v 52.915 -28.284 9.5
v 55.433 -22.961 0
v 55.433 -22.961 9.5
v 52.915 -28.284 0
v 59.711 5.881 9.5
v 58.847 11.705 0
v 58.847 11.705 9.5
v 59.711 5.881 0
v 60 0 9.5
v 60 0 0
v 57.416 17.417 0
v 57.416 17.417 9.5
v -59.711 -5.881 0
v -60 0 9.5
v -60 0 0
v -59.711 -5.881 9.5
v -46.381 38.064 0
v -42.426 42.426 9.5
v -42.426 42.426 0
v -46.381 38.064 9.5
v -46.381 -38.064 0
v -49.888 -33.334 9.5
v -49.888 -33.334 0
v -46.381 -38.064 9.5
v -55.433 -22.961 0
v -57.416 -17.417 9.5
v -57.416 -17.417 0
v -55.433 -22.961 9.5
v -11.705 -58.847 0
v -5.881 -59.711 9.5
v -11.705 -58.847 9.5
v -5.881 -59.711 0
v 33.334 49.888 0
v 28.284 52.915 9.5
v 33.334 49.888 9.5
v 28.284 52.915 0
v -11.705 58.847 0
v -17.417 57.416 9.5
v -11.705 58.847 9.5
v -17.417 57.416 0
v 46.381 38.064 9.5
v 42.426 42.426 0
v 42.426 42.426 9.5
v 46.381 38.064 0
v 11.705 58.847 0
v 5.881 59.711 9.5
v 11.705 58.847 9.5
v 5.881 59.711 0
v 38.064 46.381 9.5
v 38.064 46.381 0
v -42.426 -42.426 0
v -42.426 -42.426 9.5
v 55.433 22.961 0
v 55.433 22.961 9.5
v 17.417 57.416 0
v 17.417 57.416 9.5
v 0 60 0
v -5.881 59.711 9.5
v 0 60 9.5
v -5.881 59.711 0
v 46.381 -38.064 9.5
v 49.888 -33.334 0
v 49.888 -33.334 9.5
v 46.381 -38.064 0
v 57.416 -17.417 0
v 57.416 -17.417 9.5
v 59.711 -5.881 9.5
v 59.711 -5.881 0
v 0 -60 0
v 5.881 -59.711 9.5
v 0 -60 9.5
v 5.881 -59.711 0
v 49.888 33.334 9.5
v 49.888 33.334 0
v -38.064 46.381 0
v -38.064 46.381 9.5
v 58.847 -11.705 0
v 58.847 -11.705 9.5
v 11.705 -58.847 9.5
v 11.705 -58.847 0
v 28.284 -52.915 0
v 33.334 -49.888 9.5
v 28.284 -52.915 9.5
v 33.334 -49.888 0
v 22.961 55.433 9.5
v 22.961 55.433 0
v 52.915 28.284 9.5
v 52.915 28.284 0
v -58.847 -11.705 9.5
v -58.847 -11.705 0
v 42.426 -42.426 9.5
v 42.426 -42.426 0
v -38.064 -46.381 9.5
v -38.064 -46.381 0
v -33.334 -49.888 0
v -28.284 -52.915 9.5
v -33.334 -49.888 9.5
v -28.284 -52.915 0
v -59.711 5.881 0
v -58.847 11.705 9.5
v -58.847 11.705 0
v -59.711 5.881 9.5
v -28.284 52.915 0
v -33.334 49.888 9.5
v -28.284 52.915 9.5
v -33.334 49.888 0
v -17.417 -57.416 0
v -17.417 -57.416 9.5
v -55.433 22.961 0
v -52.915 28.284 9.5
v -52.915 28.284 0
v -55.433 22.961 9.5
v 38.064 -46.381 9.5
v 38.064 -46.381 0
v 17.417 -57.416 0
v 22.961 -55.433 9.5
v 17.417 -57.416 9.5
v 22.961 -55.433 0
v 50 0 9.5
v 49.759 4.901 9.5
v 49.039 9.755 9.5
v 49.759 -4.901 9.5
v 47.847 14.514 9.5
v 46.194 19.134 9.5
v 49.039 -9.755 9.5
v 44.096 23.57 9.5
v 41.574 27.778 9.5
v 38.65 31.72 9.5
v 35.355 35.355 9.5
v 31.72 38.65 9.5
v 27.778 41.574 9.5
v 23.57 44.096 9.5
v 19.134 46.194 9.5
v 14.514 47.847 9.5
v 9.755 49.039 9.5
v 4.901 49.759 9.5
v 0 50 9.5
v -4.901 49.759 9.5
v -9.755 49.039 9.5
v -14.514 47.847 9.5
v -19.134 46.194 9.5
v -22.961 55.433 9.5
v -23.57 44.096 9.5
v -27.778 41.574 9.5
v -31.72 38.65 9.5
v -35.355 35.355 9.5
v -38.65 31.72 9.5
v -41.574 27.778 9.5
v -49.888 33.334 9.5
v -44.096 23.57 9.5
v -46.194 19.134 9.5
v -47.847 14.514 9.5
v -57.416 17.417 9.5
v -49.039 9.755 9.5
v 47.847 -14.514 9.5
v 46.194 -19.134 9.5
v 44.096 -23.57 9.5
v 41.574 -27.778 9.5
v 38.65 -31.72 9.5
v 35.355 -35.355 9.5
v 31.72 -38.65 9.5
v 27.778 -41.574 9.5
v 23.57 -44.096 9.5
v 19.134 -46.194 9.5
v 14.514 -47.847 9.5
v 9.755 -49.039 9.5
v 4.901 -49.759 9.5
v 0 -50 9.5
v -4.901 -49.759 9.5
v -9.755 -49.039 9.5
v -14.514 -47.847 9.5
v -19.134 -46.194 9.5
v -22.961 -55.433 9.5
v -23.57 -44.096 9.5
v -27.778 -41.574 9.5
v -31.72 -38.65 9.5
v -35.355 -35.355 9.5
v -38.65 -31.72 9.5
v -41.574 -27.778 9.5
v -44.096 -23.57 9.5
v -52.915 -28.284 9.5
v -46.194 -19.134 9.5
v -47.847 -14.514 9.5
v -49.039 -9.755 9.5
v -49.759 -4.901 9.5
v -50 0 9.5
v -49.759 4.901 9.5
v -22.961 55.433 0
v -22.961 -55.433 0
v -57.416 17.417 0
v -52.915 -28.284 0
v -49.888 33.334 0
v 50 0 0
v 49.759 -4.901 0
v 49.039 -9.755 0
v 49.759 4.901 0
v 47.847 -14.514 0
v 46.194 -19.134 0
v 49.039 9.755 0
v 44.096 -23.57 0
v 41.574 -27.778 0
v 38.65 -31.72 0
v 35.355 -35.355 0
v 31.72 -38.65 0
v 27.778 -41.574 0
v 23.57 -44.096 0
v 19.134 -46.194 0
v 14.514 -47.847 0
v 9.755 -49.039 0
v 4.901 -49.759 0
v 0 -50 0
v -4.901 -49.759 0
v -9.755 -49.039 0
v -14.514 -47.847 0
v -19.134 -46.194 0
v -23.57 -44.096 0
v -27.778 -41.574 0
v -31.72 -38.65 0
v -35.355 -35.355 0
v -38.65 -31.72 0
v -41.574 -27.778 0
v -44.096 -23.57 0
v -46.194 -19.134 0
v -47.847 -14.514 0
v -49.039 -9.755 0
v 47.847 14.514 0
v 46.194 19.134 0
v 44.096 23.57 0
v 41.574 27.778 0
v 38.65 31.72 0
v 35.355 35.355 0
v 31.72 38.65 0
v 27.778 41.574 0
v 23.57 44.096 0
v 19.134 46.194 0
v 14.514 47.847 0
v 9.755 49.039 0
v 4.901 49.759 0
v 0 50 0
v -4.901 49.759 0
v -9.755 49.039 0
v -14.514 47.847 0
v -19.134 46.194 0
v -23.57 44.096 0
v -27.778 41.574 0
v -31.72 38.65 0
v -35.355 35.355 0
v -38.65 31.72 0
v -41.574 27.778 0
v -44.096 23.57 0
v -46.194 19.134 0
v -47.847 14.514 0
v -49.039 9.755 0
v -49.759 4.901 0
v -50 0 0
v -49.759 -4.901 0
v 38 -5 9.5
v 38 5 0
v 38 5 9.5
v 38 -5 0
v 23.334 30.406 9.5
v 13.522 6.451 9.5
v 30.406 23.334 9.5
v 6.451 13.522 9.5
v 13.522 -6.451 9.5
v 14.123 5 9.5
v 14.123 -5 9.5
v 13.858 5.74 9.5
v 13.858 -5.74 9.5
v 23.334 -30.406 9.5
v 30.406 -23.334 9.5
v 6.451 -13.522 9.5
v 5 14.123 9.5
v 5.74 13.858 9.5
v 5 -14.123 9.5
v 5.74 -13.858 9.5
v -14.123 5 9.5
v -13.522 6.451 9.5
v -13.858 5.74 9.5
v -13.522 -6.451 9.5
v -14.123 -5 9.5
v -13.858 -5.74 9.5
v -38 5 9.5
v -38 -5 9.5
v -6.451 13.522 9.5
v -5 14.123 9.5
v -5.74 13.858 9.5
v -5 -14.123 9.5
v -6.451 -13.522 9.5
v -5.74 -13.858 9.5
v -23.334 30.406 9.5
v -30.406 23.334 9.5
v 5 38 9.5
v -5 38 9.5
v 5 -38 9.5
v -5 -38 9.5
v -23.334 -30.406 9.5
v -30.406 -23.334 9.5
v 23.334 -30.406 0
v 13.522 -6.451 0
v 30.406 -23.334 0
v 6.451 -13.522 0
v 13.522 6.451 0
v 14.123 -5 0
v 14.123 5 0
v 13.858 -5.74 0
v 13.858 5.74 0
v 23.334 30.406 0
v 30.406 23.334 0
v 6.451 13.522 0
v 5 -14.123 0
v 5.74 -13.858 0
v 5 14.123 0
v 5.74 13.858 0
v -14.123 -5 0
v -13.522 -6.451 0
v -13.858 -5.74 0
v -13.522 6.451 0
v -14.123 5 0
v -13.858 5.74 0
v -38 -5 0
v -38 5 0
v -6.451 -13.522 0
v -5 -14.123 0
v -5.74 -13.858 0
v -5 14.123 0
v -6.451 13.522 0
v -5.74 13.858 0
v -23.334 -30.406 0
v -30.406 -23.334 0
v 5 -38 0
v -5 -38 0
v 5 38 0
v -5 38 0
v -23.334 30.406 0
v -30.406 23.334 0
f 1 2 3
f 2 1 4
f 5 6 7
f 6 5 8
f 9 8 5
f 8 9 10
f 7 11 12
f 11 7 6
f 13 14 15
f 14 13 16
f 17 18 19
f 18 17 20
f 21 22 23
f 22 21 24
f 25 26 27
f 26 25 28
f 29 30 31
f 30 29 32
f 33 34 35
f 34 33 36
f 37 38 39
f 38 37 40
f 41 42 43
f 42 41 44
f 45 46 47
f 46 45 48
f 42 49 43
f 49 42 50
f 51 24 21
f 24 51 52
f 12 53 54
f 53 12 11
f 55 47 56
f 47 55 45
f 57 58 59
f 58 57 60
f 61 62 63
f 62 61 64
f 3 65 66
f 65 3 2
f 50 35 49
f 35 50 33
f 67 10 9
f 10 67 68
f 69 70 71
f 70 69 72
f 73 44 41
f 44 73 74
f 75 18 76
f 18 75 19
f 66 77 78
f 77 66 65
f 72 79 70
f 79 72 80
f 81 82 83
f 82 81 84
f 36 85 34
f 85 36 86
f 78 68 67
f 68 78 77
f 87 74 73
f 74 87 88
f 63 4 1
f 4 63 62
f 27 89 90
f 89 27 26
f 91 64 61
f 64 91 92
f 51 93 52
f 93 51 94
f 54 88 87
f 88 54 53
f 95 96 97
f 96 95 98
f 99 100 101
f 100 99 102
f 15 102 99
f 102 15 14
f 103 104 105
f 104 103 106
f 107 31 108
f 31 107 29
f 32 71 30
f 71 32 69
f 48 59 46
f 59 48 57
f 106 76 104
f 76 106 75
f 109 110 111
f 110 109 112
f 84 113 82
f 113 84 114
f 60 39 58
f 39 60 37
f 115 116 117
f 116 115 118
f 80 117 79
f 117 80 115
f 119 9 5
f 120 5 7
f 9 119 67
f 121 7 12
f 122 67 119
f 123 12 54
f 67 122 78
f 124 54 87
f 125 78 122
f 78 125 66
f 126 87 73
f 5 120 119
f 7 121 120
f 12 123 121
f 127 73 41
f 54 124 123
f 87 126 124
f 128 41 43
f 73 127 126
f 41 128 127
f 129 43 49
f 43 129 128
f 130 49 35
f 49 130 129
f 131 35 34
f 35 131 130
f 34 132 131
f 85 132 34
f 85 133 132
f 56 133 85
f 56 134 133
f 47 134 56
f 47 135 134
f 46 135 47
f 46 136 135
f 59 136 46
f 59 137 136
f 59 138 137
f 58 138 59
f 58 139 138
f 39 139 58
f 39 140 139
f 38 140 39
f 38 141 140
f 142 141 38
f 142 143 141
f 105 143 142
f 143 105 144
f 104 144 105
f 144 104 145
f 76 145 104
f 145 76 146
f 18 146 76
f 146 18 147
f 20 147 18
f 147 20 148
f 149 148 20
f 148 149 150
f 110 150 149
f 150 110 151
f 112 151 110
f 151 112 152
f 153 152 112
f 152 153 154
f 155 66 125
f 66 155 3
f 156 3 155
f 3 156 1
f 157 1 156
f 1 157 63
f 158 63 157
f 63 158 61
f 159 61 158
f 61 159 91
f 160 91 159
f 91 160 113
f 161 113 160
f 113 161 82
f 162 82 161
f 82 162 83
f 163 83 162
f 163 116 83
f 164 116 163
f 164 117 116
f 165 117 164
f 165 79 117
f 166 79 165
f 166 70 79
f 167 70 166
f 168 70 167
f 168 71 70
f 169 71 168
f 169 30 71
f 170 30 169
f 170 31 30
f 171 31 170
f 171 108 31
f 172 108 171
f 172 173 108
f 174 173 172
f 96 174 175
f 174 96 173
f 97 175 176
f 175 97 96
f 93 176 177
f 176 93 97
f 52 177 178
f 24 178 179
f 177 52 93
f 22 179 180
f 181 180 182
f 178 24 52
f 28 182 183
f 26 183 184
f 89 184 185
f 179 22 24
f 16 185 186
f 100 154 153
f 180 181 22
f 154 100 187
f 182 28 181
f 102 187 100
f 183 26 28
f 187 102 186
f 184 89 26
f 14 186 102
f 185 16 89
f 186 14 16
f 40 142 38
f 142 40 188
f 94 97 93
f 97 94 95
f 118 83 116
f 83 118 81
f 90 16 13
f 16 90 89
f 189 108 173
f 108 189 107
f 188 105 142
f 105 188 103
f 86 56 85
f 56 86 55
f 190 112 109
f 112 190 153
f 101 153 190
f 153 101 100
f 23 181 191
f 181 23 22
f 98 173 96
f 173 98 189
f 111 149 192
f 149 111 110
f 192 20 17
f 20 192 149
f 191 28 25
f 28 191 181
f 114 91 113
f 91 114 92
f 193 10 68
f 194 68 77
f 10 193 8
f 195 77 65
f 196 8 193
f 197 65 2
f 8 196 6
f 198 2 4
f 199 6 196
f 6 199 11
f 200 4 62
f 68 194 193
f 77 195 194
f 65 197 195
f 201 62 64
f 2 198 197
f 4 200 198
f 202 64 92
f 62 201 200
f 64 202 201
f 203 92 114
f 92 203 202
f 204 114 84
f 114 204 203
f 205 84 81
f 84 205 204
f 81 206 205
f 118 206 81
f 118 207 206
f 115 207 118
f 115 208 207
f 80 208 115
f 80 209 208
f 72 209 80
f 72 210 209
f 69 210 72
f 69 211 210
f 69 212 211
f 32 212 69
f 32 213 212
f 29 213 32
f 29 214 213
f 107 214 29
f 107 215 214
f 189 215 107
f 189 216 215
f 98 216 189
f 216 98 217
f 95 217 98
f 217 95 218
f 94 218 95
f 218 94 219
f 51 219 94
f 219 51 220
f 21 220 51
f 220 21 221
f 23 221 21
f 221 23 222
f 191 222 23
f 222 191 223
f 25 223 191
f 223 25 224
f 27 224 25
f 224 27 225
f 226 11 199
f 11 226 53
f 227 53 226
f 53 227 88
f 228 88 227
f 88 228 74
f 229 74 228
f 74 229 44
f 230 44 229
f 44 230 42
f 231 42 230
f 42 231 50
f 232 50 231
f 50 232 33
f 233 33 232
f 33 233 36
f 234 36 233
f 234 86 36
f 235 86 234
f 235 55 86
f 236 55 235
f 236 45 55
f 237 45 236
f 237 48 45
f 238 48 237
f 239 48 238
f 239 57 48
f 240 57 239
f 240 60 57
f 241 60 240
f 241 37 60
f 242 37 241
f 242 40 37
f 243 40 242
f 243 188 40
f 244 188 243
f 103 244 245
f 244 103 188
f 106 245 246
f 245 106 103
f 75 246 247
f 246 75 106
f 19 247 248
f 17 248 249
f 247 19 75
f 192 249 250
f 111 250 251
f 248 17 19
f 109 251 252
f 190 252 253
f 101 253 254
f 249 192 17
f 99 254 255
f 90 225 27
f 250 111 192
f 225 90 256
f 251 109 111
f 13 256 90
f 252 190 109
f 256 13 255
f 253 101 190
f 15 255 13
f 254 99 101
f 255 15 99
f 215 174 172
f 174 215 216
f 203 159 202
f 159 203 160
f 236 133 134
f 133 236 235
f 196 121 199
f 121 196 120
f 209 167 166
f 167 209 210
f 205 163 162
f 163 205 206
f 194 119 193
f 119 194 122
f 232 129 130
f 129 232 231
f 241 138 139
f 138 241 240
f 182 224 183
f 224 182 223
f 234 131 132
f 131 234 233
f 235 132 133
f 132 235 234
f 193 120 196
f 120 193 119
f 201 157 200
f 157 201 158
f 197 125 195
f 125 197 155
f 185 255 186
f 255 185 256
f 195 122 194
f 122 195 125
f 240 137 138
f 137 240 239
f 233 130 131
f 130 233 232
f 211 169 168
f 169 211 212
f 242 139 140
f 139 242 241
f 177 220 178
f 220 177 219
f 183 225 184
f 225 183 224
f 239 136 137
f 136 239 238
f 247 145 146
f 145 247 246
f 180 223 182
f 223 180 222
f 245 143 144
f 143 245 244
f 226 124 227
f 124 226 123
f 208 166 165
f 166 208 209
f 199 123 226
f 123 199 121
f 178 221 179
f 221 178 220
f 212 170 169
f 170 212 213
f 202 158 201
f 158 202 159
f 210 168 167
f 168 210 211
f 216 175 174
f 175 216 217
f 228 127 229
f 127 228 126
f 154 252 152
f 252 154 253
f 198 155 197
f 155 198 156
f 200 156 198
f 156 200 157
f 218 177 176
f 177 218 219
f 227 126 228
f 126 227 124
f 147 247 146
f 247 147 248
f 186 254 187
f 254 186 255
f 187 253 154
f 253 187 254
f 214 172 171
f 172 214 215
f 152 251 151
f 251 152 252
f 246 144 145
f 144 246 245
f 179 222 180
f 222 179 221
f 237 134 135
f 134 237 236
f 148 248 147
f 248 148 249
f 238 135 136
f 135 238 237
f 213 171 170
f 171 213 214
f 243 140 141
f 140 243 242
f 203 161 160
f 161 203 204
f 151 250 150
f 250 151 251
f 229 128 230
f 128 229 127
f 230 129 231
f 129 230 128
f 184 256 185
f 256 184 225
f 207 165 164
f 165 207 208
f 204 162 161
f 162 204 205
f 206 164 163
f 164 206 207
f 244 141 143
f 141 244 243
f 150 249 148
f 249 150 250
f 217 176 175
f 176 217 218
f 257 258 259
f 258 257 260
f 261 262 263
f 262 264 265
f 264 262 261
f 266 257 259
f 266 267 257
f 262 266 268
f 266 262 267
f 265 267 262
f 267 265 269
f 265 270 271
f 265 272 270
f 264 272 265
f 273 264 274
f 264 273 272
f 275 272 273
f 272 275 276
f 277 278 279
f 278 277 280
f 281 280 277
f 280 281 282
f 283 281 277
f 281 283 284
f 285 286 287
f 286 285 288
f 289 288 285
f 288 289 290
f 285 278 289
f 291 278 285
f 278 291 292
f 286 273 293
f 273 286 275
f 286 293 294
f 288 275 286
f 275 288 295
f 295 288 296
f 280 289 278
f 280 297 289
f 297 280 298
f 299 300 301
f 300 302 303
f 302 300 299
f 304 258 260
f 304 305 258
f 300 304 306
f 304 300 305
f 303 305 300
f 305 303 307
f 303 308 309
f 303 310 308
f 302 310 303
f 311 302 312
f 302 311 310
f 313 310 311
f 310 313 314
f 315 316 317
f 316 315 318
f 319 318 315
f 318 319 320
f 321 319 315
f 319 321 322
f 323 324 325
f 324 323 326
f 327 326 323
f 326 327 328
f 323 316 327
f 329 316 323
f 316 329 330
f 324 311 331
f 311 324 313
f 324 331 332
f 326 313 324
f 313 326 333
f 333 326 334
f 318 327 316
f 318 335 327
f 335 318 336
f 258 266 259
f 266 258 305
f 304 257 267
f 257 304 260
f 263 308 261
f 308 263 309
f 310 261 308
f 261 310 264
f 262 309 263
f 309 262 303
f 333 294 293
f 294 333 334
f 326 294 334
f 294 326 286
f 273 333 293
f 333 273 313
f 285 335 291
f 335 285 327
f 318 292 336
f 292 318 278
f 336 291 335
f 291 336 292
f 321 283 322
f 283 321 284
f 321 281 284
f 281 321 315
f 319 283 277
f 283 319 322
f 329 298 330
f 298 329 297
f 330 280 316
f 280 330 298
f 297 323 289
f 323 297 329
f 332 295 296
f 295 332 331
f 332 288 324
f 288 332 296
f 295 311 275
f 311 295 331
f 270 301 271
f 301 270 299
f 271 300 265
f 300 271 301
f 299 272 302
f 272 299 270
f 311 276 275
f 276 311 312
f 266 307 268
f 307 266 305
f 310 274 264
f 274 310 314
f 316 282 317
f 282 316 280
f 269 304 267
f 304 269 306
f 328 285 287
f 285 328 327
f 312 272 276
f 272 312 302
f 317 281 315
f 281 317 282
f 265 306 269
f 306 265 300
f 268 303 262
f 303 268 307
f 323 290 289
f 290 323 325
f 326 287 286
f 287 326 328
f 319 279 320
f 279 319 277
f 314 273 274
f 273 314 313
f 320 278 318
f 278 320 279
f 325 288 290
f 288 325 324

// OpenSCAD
/* doodle-meta {"version":1,"parameters":{"outer_diameter":{"label":"Outer Diameter","description":"Diameter of the wheel rim","unit":"mm","feature":"outer_diameter"},"wheel_thickness":{"label":"Wheel Thickness","description":"Axial thickness (width) of the wheel","unit":"mm","feature":"wheel_thickness"},"hub_diameter":{"label":"Hub Diameter","description":"Diameter of the central hub","unit":"mm","feature":"hub_diameter"},"spoke_count":{"label":"Spoke Count","description":"Number of radial spokes","unit":"count","feature":"spoke_count"},"spoke_width":{"label":"Spoke Width","description":"Width of each spoke","unit":"mm","feature":"spoke_width"}},"features":{"outer_diameter":{"kind":"dimension","axis":"x","label":"Outer Diameter"},"wheel_thickness":{"kind":"dimension","axis":"z","label":"Wheel Thickness"},"hub_diameter":{"kind":"dimension","axis":"x","label":"Hub Diameter"},"spoke_count":{"kind":"region","label":"Spoke Count","min":[0,0,0],"max":[{"parameter":"outer_diameter","scale":0.5},{"parameter":"outer_diameter","scale":0.5},{"parameter":"wheel_thickness"}]},"spoke_width":{"kind":"region","label":"Spoke Width","min":[{"parameter":"hub_diameter","scale":0.5},0,0],"max":[{"parameter":"outer_diameter","scale":0.5},{"parameter":"outer_diameter","scale":0.5},{"parameter":"wheel_thickness"}]}}} */

// Parameters
outer_diameter = 120.0;
wheel_thickness = 9.5;
hub_diameter = 30.0;
spoke_count = 8;
spoke_width = 10.0;

// Derived constants (not editable)
$fn = 64;
eps = 0.01;

// Modules
module wheel_body() {
    // 1. Outer Rim (Ring)
    difference() {
        cylinder(d=outer_diameter, h=wheel_thickness, center=true);
        cylinder(d=outer_diameter - 2*10, h=wheel_thickness + 2*eps, center=true); // Rim thickness ~10mm
    }
    
    // 2. Central Hub
    cylinder(d=hub_diameter, h=wheel_thickness, center=true);
    
    // 3. Spokes
    for (i = [0 : spoke_count - 1]) {
        rotate([0, 0, i * 360 / spoke_count]) {
            // Spoke connects hub to rim
            // Length from center to outer edge
            translate([hub_diameter/2, 0, 0]) {
                cube([outer_diameter/2 - hub_diameter/2 + 1, spoke_width, wheel_thickness], center=true);
            }
        }
    }
}

// Main Design
// Center the wheel on Z=0 to Z=wheel_thickness
translate([0, 0, wheel_thickness/2]) {
    wheel_body();
}
